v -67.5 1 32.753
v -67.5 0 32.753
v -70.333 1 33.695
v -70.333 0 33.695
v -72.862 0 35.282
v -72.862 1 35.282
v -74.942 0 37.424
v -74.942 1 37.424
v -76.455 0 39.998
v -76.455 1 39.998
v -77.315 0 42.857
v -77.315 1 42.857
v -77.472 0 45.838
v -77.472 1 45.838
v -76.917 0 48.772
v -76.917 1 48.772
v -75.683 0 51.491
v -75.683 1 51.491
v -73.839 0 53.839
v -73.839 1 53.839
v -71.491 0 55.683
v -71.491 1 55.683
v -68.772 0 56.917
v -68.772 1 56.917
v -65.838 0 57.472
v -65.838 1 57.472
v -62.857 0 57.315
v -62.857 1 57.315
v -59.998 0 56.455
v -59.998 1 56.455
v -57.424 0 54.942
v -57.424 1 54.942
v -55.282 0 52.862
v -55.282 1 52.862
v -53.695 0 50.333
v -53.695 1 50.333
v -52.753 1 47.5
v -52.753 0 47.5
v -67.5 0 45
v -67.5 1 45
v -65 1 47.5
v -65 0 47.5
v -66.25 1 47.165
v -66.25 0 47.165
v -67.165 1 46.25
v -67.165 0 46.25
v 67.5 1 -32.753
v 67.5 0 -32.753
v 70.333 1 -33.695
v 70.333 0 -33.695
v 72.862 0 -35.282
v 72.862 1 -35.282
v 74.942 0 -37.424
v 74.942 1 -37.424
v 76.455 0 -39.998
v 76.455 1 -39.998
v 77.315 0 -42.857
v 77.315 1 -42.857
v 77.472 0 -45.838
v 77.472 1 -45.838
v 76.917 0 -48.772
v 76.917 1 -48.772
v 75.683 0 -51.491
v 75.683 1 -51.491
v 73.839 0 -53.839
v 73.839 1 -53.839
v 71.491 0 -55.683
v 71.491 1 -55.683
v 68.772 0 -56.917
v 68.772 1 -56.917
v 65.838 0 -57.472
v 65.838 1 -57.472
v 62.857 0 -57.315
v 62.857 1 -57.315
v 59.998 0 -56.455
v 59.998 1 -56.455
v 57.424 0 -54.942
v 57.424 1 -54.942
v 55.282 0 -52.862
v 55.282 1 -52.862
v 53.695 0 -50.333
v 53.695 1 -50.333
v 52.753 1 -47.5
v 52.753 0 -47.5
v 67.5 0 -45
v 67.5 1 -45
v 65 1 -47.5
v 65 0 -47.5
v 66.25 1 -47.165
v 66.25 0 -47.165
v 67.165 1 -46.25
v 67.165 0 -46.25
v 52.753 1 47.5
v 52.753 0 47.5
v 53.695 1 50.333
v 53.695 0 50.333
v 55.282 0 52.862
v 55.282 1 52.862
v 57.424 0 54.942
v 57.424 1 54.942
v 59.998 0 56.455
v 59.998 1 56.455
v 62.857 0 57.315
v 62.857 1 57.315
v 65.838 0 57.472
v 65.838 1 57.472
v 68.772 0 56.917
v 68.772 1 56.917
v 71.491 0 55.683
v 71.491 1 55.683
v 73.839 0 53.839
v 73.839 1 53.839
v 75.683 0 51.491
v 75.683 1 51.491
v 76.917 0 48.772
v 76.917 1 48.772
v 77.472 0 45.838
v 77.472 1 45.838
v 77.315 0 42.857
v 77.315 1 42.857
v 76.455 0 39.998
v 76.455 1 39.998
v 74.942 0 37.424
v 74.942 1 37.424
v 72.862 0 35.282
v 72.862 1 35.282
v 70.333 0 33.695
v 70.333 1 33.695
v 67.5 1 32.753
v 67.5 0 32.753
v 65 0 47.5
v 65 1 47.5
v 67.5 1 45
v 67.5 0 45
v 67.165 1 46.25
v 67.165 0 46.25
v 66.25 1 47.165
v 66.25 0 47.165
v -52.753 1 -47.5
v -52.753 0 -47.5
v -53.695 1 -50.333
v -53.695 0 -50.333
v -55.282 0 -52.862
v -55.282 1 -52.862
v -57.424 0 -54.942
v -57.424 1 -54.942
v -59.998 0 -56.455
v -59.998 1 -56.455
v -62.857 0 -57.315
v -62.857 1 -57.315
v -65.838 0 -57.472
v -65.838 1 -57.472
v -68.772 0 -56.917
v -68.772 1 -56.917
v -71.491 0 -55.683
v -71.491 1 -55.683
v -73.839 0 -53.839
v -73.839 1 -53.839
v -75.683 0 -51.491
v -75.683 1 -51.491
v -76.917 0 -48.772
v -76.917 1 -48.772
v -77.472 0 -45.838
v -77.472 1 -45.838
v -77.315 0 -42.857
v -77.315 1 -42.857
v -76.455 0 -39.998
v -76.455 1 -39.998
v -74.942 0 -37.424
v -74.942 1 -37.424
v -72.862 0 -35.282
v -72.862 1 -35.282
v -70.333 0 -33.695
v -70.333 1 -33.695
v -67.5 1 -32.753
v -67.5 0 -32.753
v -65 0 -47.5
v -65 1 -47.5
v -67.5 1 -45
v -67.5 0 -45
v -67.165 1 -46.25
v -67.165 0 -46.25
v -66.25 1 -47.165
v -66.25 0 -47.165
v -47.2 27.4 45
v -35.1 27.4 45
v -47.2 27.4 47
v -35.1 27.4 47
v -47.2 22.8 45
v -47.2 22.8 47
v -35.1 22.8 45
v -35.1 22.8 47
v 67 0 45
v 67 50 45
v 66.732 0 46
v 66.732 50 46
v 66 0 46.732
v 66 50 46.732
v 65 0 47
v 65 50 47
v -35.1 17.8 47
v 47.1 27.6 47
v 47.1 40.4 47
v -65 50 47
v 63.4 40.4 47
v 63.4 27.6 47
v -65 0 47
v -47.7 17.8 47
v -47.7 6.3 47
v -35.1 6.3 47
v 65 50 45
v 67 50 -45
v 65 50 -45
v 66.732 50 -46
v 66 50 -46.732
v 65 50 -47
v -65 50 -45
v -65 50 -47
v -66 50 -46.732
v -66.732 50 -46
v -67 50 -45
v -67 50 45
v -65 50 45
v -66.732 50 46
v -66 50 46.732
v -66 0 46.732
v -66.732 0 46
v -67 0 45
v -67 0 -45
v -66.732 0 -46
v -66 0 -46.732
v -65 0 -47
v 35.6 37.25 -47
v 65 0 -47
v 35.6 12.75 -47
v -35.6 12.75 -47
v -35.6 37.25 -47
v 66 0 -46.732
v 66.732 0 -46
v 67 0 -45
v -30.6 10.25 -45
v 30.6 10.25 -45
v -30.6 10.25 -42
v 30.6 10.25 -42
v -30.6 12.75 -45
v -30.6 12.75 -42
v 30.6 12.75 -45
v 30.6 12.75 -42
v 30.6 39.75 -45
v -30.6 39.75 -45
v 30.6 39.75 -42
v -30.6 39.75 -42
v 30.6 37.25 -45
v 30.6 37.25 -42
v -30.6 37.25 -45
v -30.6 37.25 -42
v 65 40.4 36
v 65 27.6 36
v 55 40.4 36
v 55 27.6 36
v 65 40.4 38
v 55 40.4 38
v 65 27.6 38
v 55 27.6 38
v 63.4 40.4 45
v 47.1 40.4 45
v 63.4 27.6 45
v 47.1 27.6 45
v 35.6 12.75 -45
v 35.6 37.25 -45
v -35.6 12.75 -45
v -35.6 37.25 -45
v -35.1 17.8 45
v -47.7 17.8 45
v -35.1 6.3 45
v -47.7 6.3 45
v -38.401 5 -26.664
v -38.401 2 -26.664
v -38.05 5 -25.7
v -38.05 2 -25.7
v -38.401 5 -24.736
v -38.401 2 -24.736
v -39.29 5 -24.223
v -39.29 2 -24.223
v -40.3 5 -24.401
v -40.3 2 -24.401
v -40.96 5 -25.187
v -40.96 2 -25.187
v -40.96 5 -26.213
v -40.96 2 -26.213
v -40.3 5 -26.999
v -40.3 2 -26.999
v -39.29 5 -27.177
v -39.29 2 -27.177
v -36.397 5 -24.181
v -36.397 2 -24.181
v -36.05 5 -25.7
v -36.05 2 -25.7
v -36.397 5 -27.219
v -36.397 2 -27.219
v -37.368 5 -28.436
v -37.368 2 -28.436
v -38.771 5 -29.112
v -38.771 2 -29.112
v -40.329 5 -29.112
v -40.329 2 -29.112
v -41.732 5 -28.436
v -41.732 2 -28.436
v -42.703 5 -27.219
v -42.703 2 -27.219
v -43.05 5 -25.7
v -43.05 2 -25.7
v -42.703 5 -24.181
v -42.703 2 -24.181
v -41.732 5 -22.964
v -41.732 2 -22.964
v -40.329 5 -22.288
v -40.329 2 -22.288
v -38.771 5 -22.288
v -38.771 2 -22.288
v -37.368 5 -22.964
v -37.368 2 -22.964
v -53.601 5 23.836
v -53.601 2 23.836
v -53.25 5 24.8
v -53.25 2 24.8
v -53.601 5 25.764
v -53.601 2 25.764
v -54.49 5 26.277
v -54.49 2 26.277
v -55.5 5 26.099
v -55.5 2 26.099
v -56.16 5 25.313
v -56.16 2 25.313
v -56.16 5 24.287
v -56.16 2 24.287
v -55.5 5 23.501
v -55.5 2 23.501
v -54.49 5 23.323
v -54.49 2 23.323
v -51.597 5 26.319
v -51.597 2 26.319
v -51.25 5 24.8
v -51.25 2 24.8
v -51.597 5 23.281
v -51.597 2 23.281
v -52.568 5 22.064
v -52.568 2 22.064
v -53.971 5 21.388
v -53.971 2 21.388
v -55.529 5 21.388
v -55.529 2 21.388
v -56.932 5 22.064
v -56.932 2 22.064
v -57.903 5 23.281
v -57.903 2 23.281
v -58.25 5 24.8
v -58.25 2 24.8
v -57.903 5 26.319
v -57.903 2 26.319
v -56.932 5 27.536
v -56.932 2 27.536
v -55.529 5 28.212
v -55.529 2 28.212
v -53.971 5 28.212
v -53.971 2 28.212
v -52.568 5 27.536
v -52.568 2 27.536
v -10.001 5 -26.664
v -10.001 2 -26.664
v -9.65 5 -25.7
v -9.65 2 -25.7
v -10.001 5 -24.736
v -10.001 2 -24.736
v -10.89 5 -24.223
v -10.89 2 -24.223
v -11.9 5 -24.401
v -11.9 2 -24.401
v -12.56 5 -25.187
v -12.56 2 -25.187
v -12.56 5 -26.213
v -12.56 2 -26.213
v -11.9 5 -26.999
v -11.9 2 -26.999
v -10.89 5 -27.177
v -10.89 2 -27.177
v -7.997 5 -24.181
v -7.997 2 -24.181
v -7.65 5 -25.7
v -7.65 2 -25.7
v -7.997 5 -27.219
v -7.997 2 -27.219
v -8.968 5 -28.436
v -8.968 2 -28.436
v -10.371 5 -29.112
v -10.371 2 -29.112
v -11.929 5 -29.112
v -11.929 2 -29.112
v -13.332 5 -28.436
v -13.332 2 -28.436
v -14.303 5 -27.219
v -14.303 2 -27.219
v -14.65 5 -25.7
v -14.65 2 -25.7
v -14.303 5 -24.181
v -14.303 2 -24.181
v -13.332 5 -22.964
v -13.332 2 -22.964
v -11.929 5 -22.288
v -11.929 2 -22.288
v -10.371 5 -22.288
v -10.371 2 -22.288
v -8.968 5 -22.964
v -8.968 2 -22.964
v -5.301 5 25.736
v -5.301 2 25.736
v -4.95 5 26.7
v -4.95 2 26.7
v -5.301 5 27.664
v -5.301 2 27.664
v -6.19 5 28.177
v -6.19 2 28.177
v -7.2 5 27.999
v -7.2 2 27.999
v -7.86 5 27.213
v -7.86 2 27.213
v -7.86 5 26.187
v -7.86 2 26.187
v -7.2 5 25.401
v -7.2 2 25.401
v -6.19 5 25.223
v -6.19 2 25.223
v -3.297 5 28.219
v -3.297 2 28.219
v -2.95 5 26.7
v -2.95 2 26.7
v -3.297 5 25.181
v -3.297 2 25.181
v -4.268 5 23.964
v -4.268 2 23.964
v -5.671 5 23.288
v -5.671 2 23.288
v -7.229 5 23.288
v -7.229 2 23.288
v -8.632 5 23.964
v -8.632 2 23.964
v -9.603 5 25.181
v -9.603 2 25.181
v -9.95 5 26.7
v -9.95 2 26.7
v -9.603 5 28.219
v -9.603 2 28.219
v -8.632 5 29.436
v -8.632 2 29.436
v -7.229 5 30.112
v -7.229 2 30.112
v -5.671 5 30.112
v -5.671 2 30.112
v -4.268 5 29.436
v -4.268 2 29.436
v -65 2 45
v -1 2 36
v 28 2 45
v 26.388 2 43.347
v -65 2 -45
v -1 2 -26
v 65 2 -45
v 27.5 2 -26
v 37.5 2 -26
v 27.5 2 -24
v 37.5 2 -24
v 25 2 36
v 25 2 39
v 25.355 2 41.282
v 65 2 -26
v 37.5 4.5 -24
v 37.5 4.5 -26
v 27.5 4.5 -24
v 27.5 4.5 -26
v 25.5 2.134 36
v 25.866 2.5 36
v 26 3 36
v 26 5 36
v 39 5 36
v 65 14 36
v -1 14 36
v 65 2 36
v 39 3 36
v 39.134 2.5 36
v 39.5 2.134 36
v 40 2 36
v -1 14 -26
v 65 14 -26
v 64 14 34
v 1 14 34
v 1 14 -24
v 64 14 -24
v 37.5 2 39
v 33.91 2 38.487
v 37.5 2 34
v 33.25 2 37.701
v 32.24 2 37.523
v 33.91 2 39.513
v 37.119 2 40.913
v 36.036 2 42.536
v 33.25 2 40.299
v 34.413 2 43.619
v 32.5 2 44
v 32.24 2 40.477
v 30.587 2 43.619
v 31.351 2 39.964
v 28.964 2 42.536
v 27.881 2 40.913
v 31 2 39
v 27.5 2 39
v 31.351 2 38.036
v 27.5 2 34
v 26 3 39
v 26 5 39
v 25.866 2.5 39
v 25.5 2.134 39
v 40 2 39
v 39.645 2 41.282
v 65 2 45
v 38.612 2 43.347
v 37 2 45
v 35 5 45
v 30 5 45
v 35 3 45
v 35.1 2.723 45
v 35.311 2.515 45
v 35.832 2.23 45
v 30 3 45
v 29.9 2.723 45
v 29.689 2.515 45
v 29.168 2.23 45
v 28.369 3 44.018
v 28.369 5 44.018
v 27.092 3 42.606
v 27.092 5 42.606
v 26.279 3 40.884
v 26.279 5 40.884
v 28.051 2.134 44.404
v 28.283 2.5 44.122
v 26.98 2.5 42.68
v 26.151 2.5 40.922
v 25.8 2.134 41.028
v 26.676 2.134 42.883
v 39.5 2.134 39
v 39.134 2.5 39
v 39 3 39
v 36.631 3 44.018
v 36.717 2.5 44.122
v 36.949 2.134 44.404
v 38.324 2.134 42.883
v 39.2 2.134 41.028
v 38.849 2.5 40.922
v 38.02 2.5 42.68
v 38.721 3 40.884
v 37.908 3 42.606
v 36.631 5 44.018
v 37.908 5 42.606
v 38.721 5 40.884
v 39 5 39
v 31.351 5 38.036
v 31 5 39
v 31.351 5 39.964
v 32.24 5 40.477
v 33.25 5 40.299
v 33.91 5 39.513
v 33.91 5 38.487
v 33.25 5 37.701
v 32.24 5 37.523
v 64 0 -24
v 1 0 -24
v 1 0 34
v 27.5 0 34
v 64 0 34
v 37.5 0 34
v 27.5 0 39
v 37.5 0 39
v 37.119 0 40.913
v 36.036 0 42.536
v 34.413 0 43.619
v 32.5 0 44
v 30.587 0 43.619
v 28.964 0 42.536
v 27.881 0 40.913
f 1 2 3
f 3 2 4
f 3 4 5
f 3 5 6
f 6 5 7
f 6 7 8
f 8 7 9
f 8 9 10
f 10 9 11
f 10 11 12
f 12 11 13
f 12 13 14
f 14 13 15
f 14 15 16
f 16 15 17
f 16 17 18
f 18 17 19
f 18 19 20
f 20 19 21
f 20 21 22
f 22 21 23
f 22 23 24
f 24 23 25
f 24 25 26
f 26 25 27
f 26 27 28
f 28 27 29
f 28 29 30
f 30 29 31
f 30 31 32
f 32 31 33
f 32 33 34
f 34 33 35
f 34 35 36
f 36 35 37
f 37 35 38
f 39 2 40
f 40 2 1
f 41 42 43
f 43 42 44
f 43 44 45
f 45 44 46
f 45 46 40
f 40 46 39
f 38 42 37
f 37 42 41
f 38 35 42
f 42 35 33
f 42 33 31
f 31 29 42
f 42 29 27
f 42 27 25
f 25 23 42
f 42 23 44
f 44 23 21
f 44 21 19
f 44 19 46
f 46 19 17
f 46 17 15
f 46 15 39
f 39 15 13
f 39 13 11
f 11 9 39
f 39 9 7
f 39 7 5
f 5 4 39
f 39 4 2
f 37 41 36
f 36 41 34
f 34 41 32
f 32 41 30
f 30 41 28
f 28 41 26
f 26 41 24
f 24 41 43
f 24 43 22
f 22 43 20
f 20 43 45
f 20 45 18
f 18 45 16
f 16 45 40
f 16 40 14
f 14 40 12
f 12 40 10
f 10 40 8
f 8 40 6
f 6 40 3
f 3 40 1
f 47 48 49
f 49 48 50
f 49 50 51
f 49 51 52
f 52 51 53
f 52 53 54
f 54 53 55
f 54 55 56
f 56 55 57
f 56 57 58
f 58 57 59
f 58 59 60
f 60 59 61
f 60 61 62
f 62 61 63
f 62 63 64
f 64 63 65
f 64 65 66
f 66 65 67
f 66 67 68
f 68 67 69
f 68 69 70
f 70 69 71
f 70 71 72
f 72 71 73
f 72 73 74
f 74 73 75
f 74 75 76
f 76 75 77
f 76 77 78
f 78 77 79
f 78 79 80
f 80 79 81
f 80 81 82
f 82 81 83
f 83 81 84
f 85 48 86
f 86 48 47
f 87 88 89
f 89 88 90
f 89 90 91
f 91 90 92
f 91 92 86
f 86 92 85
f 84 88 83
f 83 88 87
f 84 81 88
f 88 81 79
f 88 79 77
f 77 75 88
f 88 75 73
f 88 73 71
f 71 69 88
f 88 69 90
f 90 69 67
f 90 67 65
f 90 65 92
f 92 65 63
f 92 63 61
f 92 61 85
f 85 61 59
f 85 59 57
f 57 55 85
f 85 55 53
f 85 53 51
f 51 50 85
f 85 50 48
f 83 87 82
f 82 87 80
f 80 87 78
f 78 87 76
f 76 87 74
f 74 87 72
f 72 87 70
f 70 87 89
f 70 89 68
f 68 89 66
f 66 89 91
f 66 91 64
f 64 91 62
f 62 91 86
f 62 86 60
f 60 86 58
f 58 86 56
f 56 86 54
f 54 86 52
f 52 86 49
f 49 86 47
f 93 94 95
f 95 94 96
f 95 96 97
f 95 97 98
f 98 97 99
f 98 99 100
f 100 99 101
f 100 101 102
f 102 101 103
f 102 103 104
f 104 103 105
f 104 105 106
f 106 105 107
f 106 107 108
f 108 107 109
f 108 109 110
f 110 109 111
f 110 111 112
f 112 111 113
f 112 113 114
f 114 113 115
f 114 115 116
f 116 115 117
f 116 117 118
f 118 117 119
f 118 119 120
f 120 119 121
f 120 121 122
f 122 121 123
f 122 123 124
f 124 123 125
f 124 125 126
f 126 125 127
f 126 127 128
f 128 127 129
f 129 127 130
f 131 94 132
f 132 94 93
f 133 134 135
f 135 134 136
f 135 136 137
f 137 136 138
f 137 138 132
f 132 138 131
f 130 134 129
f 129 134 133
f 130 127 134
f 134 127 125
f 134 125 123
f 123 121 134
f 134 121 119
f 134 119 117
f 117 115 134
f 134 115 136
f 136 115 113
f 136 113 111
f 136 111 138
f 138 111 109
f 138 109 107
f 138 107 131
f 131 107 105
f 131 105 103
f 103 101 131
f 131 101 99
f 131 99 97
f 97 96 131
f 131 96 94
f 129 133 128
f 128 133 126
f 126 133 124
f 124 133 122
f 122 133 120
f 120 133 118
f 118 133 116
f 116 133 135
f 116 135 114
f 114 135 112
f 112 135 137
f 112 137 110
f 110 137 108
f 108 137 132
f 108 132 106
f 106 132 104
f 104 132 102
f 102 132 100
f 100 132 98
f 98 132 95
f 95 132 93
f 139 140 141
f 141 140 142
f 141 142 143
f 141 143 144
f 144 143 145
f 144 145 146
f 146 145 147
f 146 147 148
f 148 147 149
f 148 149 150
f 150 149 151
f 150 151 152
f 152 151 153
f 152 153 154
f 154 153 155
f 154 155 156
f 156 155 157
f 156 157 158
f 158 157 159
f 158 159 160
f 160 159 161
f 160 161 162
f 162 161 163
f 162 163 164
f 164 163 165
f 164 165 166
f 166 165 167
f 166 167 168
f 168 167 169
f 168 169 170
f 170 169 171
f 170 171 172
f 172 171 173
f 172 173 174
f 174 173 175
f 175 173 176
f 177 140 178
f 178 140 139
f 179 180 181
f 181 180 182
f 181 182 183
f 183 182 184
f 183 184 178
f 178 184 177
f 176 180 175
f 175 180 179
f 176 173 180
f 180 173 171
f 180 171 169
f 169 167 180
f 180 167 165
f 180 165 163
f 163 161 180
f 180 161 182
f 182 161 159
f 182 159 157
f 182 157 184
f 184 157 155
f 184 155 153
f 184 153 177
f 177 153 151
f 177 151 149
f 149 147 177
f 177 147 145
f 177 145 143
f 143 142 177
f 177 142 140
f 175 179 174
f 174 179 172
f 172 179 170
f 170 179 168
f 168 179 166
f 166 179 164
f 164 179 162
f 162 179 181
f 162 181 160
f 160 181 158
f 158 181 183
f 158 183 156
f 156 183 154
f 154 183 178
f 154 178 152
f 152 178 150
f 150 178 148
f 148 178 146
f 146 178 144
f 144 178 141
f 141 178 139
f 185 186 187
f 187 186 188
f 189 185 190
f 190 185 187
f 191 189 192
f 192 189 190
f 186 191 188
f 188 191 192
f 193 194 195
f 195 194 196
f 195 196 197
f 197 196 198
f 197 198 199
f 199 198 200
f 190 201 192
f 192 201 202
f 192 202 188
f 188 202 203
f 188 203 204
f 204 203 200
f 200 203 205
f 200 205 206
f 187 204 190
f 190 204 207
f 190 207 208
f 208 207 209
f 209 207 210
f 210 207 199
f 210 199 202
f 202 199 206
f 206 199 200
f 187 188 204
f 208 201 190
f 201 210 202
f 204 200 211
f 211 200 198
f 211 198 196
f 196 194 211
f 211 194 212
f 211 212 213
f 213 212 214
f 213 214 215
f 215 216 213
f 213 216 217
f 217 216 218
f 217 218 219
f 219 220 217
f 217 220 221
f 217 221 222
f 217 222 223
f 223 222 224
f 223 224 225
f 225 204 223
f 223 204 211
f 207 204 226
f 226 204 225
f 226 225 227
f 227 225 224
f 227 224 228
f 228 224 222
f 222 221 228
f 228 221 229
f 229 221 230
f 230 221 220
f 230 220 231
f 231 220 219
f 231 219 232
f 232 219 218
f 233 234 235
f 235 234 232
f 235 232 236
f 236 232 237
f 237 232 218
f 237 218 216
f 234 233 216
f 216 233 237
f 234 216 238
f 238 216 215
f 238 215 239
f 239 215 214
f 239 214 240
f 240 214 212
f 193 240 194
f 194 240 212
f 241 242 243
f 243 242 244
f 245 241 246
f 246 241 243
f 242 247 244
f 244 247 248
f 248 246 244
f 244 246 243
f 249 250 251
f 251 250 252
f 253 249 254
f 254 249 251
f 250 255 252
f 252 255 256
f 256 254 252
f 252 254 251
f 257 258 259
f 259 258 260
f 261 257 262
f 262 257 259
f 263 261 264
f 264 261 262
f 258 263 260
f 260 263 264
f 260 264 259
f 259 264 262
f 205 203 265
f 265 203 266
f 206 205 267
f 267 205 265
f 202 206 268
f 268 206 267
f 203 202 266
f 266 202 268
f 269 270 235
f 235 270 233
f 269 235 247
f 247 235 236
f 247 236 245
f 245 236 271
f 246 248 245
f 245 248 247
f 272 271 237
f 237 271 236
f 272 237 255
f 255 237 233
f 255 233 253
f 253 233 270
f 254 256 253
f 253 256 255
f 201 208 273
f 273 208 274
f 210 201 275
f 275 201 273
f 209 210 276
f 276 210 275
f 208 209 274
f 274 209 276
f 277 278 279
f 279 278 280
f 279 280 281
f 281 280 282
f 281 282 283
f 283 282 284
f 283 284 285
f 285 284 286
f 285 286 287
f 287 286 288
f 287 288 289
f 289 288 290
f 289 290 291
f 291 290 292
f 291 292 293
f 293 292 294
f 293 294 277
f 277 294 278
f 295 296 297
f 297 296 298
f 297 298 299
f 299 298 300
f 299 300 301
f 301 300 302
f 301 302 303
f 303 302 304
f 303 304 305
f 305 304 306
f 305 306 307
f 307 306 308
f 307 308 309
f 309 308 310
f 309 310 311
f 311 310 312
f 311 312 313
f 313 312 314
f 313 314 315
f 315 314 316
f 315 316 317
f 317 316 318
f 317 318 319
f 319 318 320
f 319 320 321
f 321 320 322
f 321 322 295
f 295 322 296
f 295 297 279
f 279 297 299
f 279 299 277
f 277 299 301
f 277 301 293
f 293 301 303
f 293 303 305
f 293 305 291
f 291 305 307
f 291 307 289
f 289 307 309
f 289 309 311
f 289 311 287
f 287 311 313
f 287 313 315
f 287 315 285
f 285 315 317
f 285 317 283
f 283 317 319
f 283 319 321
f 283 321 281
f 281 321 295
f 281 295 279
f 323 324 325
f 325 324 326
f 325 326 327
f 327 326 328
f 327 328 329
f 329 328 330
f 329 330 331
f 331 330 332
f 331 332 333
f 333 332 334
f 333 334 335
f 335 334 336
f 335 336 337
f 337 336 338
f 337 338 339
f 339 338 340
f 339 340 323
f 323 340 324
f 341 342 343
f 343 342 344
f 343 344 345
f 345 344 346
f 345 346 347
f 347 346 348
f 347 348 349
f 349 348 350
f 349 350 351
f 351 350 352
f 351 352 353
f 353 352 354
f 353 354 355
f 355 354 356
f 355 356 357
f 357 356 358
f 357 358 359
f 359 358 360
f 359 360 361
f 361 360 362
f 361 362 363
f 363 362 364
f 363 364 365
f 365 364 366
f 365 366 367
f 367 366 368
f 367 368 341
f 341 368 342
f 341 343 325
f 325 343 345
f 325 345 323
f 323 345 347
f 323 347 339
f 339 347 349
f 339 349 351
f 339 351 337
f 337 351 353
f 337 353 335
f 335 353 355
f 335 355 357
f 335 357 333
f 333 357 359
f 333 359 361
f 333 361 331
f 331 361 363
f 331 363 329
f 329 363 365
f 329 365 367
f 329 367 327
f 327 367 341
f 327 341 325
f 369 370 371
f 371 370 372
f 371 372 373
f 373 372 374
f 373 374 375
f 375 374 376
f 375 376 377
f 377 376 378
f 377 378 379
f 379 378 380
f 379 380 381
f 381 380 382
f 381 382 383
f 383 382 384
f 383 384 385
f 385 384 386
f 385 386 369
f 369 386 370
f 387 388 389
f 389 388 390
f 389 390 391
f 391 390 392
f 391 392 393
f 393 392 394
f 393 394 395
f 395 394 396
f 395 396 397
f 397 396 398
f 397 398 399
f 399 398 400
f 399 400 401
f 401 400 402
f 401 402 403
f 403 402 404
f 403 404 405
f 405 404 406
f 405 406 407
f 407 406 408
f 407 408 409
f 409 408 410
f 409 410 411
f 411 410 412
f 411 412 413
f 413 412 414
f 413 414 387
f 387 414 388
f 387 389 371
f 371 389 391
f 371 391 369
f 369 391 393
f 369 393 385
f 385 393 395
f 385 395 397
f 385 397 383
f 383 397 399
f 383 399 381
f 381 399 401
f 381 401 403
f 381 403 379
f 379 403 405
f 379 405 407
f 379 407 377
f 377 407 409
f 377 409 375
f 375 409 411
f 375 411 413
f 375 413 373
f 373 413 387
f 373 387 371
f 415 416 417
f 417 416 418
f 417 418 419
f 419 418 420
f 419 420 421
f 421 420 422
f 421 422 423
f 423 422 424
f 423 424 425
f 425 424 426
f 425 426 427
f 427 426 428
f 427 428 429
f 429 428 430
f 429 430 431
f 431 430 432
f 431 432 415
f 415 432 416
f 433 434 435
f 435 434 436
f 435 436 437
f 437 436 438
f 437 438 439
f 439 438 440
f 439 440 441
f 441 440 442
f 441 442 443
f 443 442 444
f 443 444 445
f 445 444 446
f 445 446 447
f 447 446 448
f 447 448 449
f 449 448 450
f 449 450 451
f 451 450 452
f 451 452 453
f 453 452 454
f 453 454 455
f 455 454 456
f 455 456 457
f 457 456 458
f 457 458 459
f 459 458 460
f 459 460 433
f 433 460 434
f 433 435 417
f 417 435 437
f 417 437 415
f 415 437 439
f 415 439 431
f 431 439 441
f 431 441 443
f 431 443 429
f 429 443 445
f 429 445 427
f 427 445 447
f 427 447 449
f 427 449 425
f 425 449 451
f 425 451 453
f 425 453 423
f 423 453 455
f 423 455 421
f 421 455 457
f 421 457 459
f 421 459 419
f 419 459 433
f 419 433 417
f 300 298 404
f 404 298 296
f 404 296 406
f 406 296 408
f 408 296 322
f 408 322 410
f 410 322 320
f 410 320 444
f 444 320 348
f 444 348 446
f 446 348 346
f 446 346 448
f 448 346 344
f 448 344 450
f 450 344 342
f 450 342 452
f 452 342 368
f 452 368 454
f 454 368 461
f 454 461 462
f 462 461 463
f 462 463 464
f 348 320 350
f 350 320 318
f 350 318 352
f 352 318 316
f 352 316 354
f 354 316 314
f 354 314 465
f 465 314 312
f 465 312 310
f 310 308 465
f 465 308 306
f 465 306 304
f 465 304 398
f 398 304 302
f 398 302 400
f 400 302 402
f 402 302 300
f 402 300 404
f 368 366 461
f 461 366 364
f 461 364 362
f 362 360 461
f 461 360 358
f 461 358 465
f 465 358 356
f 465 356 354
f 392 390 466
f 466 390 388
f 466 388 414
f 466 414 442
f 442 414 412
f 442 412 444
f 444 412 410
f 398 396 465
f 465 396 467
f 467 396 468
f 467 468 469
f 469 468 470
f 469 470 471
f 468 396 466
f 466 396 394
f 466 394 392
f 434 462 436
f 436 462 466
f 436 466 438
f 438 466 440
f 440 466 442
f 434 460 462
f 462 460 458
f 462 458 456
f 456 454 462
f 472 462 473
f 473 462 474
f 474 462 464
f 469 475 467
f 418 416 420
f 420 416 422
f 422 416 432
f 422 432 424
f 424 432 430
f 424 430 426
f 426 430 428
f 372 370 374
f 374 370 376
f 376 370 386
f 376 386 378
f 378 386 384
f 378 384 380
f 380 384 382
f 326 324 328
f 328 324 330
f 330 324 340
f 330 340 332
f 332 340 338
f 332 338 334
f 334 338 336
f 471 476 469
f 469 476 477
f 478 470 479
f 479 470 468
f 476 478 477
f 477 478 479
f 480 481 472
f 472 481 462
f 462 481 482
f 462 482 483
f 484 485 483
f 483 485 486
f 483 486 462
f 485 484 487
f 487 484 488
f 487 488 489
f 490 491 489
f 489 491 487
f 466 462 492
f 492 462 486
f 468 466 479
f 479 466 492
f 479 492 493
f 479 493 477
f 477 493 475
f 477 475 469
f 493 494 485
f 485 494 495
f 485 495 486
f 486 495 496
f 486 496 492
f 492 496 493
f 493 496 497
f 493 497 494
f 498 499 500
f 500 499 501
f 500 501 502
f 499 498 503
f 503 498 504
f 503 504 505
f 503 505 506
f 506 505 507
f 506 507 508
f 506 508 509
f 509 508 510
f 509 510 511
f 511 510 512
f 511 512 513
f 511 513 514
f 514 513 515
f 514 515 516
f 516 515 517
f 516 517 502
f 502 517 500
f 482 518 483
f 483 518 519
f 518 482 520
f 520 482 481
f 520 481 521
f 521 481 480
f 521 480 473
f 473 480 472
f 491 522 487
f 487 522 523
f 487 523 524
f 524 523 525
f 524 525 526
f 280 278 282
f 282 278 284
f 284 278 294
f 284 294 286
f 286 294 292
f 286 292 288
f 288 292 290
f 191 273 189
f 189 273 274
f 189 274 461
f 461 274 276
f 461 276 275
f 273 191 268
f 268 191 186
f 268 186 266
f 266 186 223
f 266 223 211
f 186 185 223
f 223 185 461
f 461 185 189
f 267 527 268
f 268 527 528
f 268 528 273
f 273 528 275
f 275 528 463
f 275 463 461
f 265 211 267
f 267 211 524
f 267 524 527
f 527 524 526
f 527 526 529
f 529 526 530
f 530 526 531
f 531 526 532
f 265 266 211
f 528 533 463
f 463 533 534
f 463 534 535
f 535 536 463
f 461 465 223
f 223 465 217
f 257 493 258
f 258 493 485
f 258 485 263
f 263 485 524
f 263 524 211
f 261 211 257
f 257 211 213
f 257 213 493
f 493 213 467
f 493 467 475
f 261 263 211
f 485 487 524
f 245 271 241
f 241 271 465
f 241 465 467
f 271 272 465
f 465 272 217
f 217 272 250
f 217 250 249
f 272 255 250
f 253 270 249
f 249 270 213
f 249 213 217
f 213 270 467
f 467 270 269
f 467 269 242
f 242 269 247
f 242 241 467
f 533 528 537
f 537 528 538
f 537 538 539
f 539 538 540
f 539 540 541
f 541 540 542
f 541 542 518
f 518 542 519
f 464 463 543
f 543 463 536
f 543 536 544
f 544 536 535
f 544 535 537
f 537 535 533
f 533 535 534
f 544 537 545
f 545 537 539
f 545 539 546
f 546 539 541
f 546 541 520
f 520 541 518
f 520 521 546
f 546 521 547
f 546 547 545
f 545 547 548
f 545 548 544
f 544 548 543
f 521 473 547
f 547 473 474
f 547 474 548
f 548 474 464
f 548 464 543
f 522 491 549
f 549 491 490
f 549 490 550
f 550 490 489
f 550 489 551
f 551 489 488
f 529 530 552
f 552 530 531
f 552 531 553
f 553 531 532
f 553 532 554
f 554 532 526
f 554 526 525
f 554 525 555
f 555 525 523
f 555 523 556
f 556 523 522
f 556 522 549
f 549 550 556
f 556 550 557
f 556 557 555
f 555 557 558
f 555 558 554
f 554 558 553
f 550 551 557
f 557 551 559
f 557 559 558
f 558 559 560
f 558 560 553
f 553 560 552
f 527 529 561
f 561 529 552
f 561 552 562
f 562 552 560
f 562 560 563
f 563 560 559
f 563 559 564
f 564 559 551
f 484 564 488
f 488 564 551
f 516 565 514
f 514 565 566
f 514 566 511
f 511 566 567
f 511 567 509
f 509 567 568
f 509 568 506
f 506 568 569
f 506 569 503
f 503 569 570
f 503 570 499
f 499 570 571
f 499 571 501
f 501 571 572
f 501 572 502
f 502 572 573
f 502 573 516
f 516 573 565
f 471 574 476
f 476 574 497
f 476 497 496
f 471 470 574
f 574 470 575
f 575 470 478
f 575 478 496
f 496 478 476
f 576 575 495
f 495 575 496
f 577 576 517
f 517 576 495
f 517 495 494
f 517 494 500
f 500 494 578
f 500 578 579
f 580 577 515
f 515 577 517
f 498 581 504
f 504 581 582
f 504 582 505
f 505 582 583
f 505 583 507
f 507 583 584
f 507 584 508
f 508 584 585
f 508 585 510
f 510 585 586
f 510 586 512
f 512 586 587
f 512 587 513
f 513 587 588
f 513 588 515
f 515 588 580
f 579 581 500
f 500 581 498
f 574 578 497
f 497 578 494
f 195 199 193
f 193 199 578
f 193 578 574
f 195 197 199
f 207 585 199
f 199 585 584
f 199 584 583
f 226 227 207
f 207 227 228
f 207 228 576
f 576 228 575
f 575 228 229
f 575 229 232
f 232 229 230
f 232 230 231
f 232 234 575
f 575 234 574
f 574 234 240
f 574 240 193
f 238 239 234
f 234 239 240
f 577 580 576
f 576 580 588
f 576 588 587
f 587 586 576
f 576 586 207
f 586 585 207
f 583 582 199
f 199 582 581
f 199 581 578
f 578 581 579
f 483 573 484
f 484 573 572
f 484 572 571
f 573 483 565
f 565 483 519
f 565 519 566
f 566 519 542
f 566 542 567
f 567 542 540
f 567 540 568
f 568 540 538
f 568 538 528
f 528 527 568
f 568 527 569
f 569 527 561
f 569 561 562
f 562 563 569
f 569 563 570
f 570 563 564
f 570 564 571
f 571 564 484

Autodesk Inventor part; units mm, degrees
ref_plane "YZ Plane" through (0, 0, 0) normal (1, 0, 0) x (0, 1, 0)
ref_plane "XZ Plane" through (0, 0, 0) normal (0, 1, 0) x (-1, 0, 0)
ref_plane "XY Plane" through (0, 0, 0) normal (0, 0, 1) x (1, 0, 0)
sketch "스케치1" plane through (0, 0, 0) normal (0, 1, 0) x (-1, 0, 0)
  line L0 (65, -45) -> (-65, -45)
  line L1 (-65, -45) -> (-65, 45)
  line L2 (-65, 45) -> (65, 45)
  line L3 (65, 45) -> (65, -45)
  line L4 (65, -45) -> (-65, 45) construction
  line L5 (-65, -45) -> (65, 45) construction
  line L6 (-67, -47) -> (67, -47)
  line L7 (67, -47) -> (67, 47)
  line L8 (67, 47) -> (-67, 47)
  line L9 (-67, 47) -> (-67, -47)
  line L10 (-1, -24) -> (-64, -24)
  line L11 (-64, -24) -> (-64, 34)
  line L12 (-64, 34) -> (-1, 34)
  line L13 (-1, 34) -> (-1, -24)
  circle A0 centre (-32.5, 39) radius 1.5
  circle A1 centre (-32.5, 39) radius 3.5
  arc A2 (-27.5, 39) -> (-37.5, 39) centre (-32.5, 39) ccw
  line L14 (-27.5, 39) -> (-27.5, 34)
  line L15 (-37.5, 39) -> (-37.5, 34)
  point P0 (0, 0)
  point P1 (-32.5, 34)
  point P2 (-32.5, 44)
  dimension "d0" = 130
  dimension "d1" = 90
  dimension "d2" = 2
  dimension "d3" = 58
  dimension "d4" = 63
  dimension "d5" = 3
  dimension "d6" = 7
  dimension "d7" = 10
  dimension "d8" = 1
  dimension "d9" = 1
extrude "돌출1" add sketch "스케치1" along normal blind 2 contours L0 L1 L2 L3 | L9 L8 L7 L6
extrude "돌출2" add sketch "스케치1" along normal blind 3 from surface at 2 contours L12 L15 A2 L14 | A1
sketch "스케치2" plane through (0, 2, 0) normal (0, 1, 0) x (1, 0, 0)
  line L0 (-67, -47) -> (67, -47) projected
  line L1 (67, -47) -> (67, 47) projected
  line L2 (67, 47) -> (-67, 47) projected
  line L3 (-67, 47) -> (-67, -47) projected
  line L4 (64, -34) -> (37.5, -34) projected
  line L5 (37.5, -34) -> (37.5, -39) projected
  arc A0 (27.5, -39) -> (37.5, -39) centre (32.5, -39) ccw projected
  line L6 (27.5, -39) -> (27.5, -34) projected
  line L7 (27.5, -34) -> (1, -34) projected
  line L8 (1, -34) -> (1, 24) projected
  line L9 (1, 24) -> (64, 24) projected
  line L10 (64, 24) -> (64, -34) projected
  line L11 (39, -39) -> (39, -35.5)
  line L12 (64, -55.5) -> (65.5, -55.5)
  line L13 (65.5, -55.5) -> (65.5, 25.5)
  line L14 (65.5, 25.5) -> (-0.5, 25.5)
  line L15 (-0.5, 25.5) -> (-0.5, -55.5)
  line L16 (-0.5, -55.5) -> (1, -55.5)
  line L17 (26, -55.5) -> (26, -39)
  arc A1 (26, -39) -> (39, -39) centre (32.5, -39) ccw
  line L18 (39, -35.5) -> (39, -34)
  line L19 (26, -55.5) -> (26, -34)
  point P0 (0, 0)
  dimension "d14" = 1.5
extrude "돌출3" add sketch "스케치2" along normal blind 3 contours L19 L7 L6 A0 L5 L4 L18 L11 A1
fillet "모깎기1" radius 1 2 edges at (32.5, 2, 45.5) (39, 2, 36.5)
extrude "돌출4" add sketch "스케치1" along normal blind 50 contours L9 L8 L7 L6
sketch "스케치3" plane through (0, 2, 0) normal (0, 1, 0) x (1, 0, 0)
  point P0 (0, 0)
sketch "스케치4" plane through (0, 2, 0) normal (0, 1, 0) x (1, 0, 0)
  line L0 (37, -45) -> (65, -45) projected
  line L1 (65, -45) -> (65, 45) projected
  line L2 (65, 45) -> (-65, 45) projected
  line L3 (-65, 45) -> (-65, -45) projected
  line L4 (-65, -45) -> (28, -45) projected
  arc A0 (25, -39) -> (28, -45) centre (32.5, -39) ccw projected
  line L5 (25, -34) -> (1, -34) projected
  line L6 (1, -34) -> (1, 24) projected
  line L7 (1, 24) -> (64, 24) projected
  line L8 (64, 24) -> (64, -34) projected
  line L9 (64, -34) -> (40, -34) projected
  line L10 (40, -39) -> (40, -34) projected
  arc A1 (37, -45) -> (40, -39) centre (32.5, -39) ccw projected
  line L11 (73.9957, 33.9957) -> (-8.9957, 33.9957)
  line L12 (-8.9957, 33.9957) -> (-8.9957, -43.9957)
  line L13 (-8.9957, -43.9957) -> (25.1098, -43.9957)
  line L14 (49.9957, -39) -> (49.9957, -43.9957)
  line L15 (49.9957, -43.9957) -> (73.9957, -43.9957)
  line L16 (73.9957, -43.9957) -> (73.9957, 33.9957)
  line L17 (-1, 26) -> (74.9957, 26)
  line L18 (74.9957, 26) -> (74.9957, -36)
  line L19 (74.9957, -36) -> (-1, -36)
  line L20 (-1, -36) -> (-1, 26)
  line L21 (25.1098, -36) -> (49.9957, -36)
  line L22 (49.9957, -43.9957) -> (25.1098, -43.9957)
  line L23 (25, -34) -> (25, -39) projected
  line L24 (25, -34) -> (40, -34)
  line L25 (64, -34) -> (37.5, -34) projected
  line L26 (25.1098, -36) -> (40, -36)
  point P0 (0, 0)
  point P1 (40, -36)
  point P2 (25, -36)
  point P3 (73.9957, -36)
  point P4 (73.9957, 26)
  point P5 (65, -36)
  point P6 (65, 26)
  dimension "d20" = 2
  dimension "d21" = 2
  dimension "d22" = 2
  dimension "d23" = 1
extrude "돌출5" add sketch "스케치4" along normal blind 12 contours L19 L10 L9 L8 L7 L6 L5 L23 L20 L17 L1 | L19 L23 L24 L10
sketch "스케치5" plane through (74.9957, 2, -26) normal (0, 0, -1) x (-1, 0, 0)
  line L0 (37.4957, 2.5) -> (47.4957, 2.5)
  line L1 (47.4957, 2.5) -> (47.4957, 0)
  line L2 (47.4957, 0) -> (37.4957, 0)
  line L3 (37.4957, 0) -> (37.4957, 2.5)
  line L4 (9.9957, 0) -> (75.9957, 0) projected
  line L5 (0, 0) -> (0, 12) projected
  point P0 (74.9957, -2)
  point P1 (39.9957, 0)
  point P2 (42.4957, 2.5)
  point P3 (10.9957, 12)
  point P4 (7.9957, 0)
  dimension "d28" = 2.5
  dimension "d29" = 10
  dimension "d93" = 31.5
extrude "돌출6" cut sketch "스케치5" against normal up to surface (2 mm away)
sketch "스케치6" plane through (0, 2, 0) normal (0, 1, 0) x (1, 0, 0)
  line L0 (-3.7, -40.4) -> (-57, -40.4)
  line L1 (-57, -40.4) -> (-57, 28.2)
  line L2 (-57, 28.2) -> (-3.7, 28.2)
  line L3 (-3.7, 28.2) -> (-3.7, -40.4)
  line L4 (-3.7, 25.7) -> (-51.0807, 25.7)
  line L5 (-51.0807, 25.7) -> (-51.0807, 28.2)
  line L6 (-51.0807, 28.2) -> (-3.7, 28.2)
  line L7 (-3.7, 28.2) -> (-3.7, 25.7)
  line L8 (-51.0807, 25.7) -> (-57, 25.7)
  circle A0 centre (-11.15, 25.7) radius 1.5
  circle A1 centre (-39.55, 25.7) radius 1.5
  circle A2 centre (-54.75, -24.8) radius 1.5
  circle A3 centre (-6.45, -26.7) radius 1.5
  line L9 (-35.4, -40.4) -> (-47.4, -40.4)
  line L10 (-47.4, -40.4) -> (-47.4, -47)
  line L11 (-47.4, -47) -> (-35.4, -47)
  line L12 (-35.4, -47) -> (-35.4, -40.4)
  line L13 (-67, -47) -> (67, -47) projected
  line L14 (-65, -45) -> (-65, 45) projected
  circle A4 centre (-54.75, -24.8) radius 3.5
  circle A5 centre (-6.45, -26.7) radius 3.5
  circle A6 centre (-11.15, 25.7) radius 3.5
  circle A7 centre (-39.55, 25.7) radius 3.5
  point P0 (0, 0)
  point P1 (-41.4, -47)
  point P2 (-54.0404, 25.7)
  dimension "d33" = 53.3
  dimension "d34" = 68.6
  dimension "d36" = 3
  dimension "d37" = 3
  dimension "d38" = 28.4
  dimension "d39" = 3
  dimension "d40" = 3
  dimension "d41" = 52.4
  dimension "d42" = 50.5
  dimension "d44" = 15.2
  dimension "d45" = 4.7
  dimension "d46" = 2.25
  dimension "d47" = 12
  dimension "d48" = 9.6
  dimension "d49" = 6.6
  dimension "d50" = 8
  dimension "d51" = 2.5
  dimension "d52" = 2
  dimension "d53" = 2
  dimension "d54" = 2
  dimension "d55" = 2
extrude "돌출7" add sketch "스케치6" along normal blind 3 contours A5 L3 | L3 A5 | A4 L1 | L1 A4 | A6 L4 A0 | L4 A0 A6 L2 | L2 A6 | A7 L4 A1 | L4 A1 A7 L2 | L2 A7
sketch "스케치7" plane through (65, 50, 45) normal (0, 0, -1) x (-1, 0, 0)
  line L0 (100.4, -32.5) -> (112.4, -32.5)
  line L1 (112.4, -32.5) -> (112.4, -43.4)
  line L2 (112.4, -43.4) -> (100.4, -43.4)
  line L3 (100.4, -43.4) -> (100.4, -32.5)
  line L4 (130, -48) -> (130, 0) projected
  line L5 (130, -48) -> (37, -48) projected
  line L6 (112.7, -32.2) -> (100.1, -32.2)
  line L7 (100.1, -32.2) -> (100.1, -43.7)
  line L8 (100.1, -43.7) -> (112.7, -43.7)
  line L9 (112.7, -43.7) -> (112.7, -32.2)
  point P0 (65, -50)
  dimension "d58" = 10.9
  dimension "d59" = 12
  dimension "d60" = 17.6
  dimension "d61" = 4.6
  dimension "d62" = 0.3
extrude "돌출8" cut sketch "스케치7" against normal through all contours L0 L1 L2 L3 | L9 L8 L7 L6
sketch "스케치8" plane through (67, 0, -47) normal (0, 0, -1) x (-1, 0, 0)
  line L0 (31.4, 37.25) -> (102.6, 37.25)
  line L1 (102.6, 37.25) -> (102.6, 12.75)
  line L2 (102.6, 12.75) -> (31.4, 12.75)
  line L3 (31.4, 12.75) -> (31.4, 37.25)
  line L4 (31.4, 37.25) -> (102.6, 12.75) construction
  line L5 (102.6, 37.25) -> (31.4, 12.75) construction
  line L6 (27, 43) -> (107, 43)
  line L7 (107, 43) -> (107, 7)
  line L8 (107, 7) -> (27, 7)
  line L9 (27, 7) -> (27, 43)
  line L10 (27, 43) -> (107, 7) construction
  line L11 (107, 43) -> (27, 7) construction
  circle A0 centre (104.5, 40.5) radius 1.6
  circle A1 centre (104.5, 9.5) radius 1.6
  circle A2 centre (29.5, 9.5) radius 1.6
  circle A3 centre (29.5, 40.5) radius 1.6
  line L12 (134, 0) -> (134, 50) projected
  point P0 (67, 0)
  point P1 (67, 25)
  point P2 (134, 25)
  dimension "d65" = 71.2
  dimension "d66" = 24.5
  dimension "d67" = 36
  dimension "d68" = 80
  dimension "d69" = 3.2
  dimension "d70" = 2.5
  dimension "d71" = 3.2
  dimension "d72" = 3.2
  dimension "d73" = 3.2
  dimension "d74" = 2.5
  dimension "d75" = 31
  dimension "d76" = 75
  dimension "d77" = 2.5
extrude "돌출9" cut sketch "스케치8" against normal up to surface (2 mm away) contours L0 L1 L2 L3
sketch "스케치9" plane through (65, 50, 45) normal (0, 0, -1) x (-1, 0, 0)
  line L0 (2, -10) -> (17.5, -10)
  line L1 (17.5, -10) -> (17.5, -22)
  line L2 (17.5, -22) -> (2, -22)
  line L3 (2, -22) -> (2, -10)
  line L4 (0, -48) -> (0, 0) projected
  line L5 (0, 0) -> (130, 0) projected
  line L6 (17.9, -9.6) -> (1.6, -9.6)
  line L7 (1.6, -9.6) -> (1.6, -22.4)
  line L8 (1.6, -22.4) -> (17.9, -22.4)
  line L9 (17.9, -22.4) -> (17.9, -9.6)
  point P0 (65, -50)
  point P1 (17.5, -16)
  dimension "d80" = 12
  dimension "d81" = 15.5
  dimension "d82" = 2
  dimension "d88" = 16
  dimension "d89" = 0.4
extrude "돌출10" cut sketch "스케치9" against normal through all contours L0 L1 L2 L3 | L9 L8 L7 L6
sketch "스케치10" plane through (65, 2, 45) normal (-1, 0, 0) x (0, 0, 1)
  line L0 (-9, 38.4) -> (-7, 38.4)
  line L1 (-7, 38.4) -> (-7, 25.6)
  line L2 (-7, 25.6) -> (-9, 25.6)
  line L3 (-9, 25.6) -> (-9, 38.4)
  line L4 (2, -2) -> (2, 48) projected
  line L5 (0, 25.6) -> (0, 38.4) projected
  point P0 (-45, -2)
  point P1 (-8, 38.4)
  point P2 (-8, 25.6)
  dimension "d86" = 2
  dimension "d87" = 9
extrude "돌출11" add sketch "스케치10" along normal blind 10
sketch "스케치11" plane through (-65, 2, -45) normal (0, 0, 1) x (1, 0, 0)
  line L0 (34.4, 35.25) -> (95.6, 35.25)
  line L1 (95.6, 35.25) -> (95.6, 37.75)
  line L2 (95.6, 37.75) -> (34.4, 37.75)
  line L3 (34.4, 37.75) -> (34.4, 35.25)
  line L4 (29.4, 35.25) -> (29.4, 10.75) projected
  line L5 (29.4, 10.75) -> (100.6, 10.75) projected
  line L6 (100.6, 10.75) -> (100.6, 35.25) projected
  line L7 (100.6, 35.25) -> (29.4, 35.25) projected
  line L8 (132, -2) -> (-2, -2) projected
  line L9 (-2, -2) -> (-2, 48) projected
  line L10 (132, 48) -> (-2, 48) projected
  line L11 (132, -2) -> (132, 48) projected
  line L12 (34.4, 10.75) -> (95.6, 10.75)
  line L13 (95.6, 10.75) -> (95.6, 8.25)
  line L14 (95.6, 8.25) -> (34.4, 8.25)
  line L15 (34.4, 8.25) -> (34.4, 10.75)
  point P0 (65, -2)
  dimension "d94" = 2.5
  dimension "d95" = 5
  dimension "d96" = 5
  dimension "d97" = 2.5
extrude "돌출12" add sketch "스케치11" along normal blind 3 contours L3 L2 L1 L0 | L5 L13 L14 L15
fillet "모깎기2" radius 2 4 edges at (67, 25, -47) (-67, 25, -47) (-67, 25, 47) (67, 25, 47)
sketch "스케치12" plane through (0, 0, 0) normal (0, -1, 0) x (1, 0, 0)
  arc A0 (67, 45) -> (65, 47) centre (65, 45) ccw projected
  circle A1 centre (65, 45) radius 12.5
  arc A2 (67, 45) -> (65, 47) centre (65, 45) ccw projected
  line L0 (-65, 47) -> (65, 47) projected
  arc A3 (-65, 47) -> (-67, 45) centre (-65, 45) ccw projected
  line L1 (-67, -45) -> (-67, 45) projected
  arc A4 (-67, -45) -> (-65, -47) centre (-65, -45) ccw projected
  line L2 (65, -47) -> (-65, -47) projected
  arc A5 (65, -47) -> (67, -45) centre (65, -45) ccw projected
  line L3 (67, 45) -> (67, -45) projected
  line L4 (64, -24) -> (64, 34) projected
  line L5 (1, -24) -> (64, -24) projected
  line L6 (1, 34) -> (1, -24) projected
  line L7 (27.5, 34) -> (1, 34) projected
  line L8 (27.5, 39) -> (27.5, 34) projected
  arc A6 (37.5, 39) -> (27.5, 39) centre (32.5, 39) ccw projected
  line L9 (37.5, 34) -> (37.5, 39) projected
  line L10 (64, 34) -> (37.5, 34) projected
  line L11 (-65, 45) -> (28, 45) projected
  circle A7 centre (-65, 45) radius 12.5
  line L12 (-65, -45) -> (-65, 45) projected
  circle A8 centre (-65, -45) radius 12.5
  line L13 (65, 45) -> (65, -45) projected
  circle A9 centre (65, -45) radius 12.5
  arc A10 (-67.5, -45) -> (-65, -47.5) centre (-65, -45) ccw
  line L14 (-67.5, -45) -> (-67.5, 45)
  arc A11 (-65, 47.5) -> (-67.5, 45) centre (-65, 45) ccw
  line L15 (-65, 47.5) -> (65, 47.5)
  arc A12 (67.5, 45) -> (65, 47.5) centre (65, 45) ccw
  line L16 (67.5, 45) -> (67.5, -45)
  arc A13 (65, -47.5) -> (67.5, -45) centre (65, -45) ccw
  line L17 (65, -47.5) -> (-65, -47.5)
  point P0 (0, 0)
  point P1 (52.661, -47)
  point P2 (67, -32.661)
  point P3 (-67, -32.661)
  point P4 (-52.661, -47)
  point P5 (-52.661, 47)
  point P6 (-67, 32.661)
  point P7 (67, 32.661)
  point P8 (52.661, 47)
  point P9 (65, 47)
  point P10 (67.5, 32.7526)
  point P11 (52.7526, 47.5)
  point P12 (-52.7526, 47.5)
  point P13 (-67.5, 32.7526)
  point P14 (52.7526, -47.5)
  point P15 (67.5, -32.7526)
  point P16 (-67.5, -32.7526)
  point P17 (-52.7526, -47.5)
  dimension "d101" = 25
  dimension "d102" = 25
  dimension "d103" = 25
  dimension "d104" = 25
  dimension "d122" = 0.5
extrude "돌출13" add sketch "스케치12" against normal blind 1 contours L16 A12 L15 A1 | A9 L17 A13 L16 | L15 A11 L14 A7 | L14 A10 L17 A8
sketch "스케치15" plane through (-65, 50, 47) normal (0, 0, 1) x (1, 0, 0)
  line L0 (18.1, -22.9) -> (29.6, -22.9)
  line L1 (29.6, -22.9) -> (29.6, -26.9)
  line L2 (29.6, -26.9) -> (18.1, -26.9)
  line L3 (18.1, -26.9) -> (18.1, -22.9)
  line L4 (29.9, -22.6) -> (17.8, -22.6)
  line L5 (17.8, -22.6) -> (17.8, -27.2)
  line L6 (17.8, -27.2) -> (29.9, -27.2)
  line L7 (29.9, -27.2) -> (29.9, -22.6)
  line L8 (17.3, -32.2) -> (29.9, -32.2) projected
  point P0 (65, -50)
  point P1 (23.6, -32.2)
  point P2 (23.85, -27.2)
  dimension "d116" = 11.5
  dimension "d117" = 4
  dimension "d118" = 0.3
  dimension "d119" = 5
extrude "돌출14" cut sketch "스케치15" against normal blind 40 contours L0 L1 L2 L3 | L7 L6 L5 L4
properties part number "case_under_v2"
